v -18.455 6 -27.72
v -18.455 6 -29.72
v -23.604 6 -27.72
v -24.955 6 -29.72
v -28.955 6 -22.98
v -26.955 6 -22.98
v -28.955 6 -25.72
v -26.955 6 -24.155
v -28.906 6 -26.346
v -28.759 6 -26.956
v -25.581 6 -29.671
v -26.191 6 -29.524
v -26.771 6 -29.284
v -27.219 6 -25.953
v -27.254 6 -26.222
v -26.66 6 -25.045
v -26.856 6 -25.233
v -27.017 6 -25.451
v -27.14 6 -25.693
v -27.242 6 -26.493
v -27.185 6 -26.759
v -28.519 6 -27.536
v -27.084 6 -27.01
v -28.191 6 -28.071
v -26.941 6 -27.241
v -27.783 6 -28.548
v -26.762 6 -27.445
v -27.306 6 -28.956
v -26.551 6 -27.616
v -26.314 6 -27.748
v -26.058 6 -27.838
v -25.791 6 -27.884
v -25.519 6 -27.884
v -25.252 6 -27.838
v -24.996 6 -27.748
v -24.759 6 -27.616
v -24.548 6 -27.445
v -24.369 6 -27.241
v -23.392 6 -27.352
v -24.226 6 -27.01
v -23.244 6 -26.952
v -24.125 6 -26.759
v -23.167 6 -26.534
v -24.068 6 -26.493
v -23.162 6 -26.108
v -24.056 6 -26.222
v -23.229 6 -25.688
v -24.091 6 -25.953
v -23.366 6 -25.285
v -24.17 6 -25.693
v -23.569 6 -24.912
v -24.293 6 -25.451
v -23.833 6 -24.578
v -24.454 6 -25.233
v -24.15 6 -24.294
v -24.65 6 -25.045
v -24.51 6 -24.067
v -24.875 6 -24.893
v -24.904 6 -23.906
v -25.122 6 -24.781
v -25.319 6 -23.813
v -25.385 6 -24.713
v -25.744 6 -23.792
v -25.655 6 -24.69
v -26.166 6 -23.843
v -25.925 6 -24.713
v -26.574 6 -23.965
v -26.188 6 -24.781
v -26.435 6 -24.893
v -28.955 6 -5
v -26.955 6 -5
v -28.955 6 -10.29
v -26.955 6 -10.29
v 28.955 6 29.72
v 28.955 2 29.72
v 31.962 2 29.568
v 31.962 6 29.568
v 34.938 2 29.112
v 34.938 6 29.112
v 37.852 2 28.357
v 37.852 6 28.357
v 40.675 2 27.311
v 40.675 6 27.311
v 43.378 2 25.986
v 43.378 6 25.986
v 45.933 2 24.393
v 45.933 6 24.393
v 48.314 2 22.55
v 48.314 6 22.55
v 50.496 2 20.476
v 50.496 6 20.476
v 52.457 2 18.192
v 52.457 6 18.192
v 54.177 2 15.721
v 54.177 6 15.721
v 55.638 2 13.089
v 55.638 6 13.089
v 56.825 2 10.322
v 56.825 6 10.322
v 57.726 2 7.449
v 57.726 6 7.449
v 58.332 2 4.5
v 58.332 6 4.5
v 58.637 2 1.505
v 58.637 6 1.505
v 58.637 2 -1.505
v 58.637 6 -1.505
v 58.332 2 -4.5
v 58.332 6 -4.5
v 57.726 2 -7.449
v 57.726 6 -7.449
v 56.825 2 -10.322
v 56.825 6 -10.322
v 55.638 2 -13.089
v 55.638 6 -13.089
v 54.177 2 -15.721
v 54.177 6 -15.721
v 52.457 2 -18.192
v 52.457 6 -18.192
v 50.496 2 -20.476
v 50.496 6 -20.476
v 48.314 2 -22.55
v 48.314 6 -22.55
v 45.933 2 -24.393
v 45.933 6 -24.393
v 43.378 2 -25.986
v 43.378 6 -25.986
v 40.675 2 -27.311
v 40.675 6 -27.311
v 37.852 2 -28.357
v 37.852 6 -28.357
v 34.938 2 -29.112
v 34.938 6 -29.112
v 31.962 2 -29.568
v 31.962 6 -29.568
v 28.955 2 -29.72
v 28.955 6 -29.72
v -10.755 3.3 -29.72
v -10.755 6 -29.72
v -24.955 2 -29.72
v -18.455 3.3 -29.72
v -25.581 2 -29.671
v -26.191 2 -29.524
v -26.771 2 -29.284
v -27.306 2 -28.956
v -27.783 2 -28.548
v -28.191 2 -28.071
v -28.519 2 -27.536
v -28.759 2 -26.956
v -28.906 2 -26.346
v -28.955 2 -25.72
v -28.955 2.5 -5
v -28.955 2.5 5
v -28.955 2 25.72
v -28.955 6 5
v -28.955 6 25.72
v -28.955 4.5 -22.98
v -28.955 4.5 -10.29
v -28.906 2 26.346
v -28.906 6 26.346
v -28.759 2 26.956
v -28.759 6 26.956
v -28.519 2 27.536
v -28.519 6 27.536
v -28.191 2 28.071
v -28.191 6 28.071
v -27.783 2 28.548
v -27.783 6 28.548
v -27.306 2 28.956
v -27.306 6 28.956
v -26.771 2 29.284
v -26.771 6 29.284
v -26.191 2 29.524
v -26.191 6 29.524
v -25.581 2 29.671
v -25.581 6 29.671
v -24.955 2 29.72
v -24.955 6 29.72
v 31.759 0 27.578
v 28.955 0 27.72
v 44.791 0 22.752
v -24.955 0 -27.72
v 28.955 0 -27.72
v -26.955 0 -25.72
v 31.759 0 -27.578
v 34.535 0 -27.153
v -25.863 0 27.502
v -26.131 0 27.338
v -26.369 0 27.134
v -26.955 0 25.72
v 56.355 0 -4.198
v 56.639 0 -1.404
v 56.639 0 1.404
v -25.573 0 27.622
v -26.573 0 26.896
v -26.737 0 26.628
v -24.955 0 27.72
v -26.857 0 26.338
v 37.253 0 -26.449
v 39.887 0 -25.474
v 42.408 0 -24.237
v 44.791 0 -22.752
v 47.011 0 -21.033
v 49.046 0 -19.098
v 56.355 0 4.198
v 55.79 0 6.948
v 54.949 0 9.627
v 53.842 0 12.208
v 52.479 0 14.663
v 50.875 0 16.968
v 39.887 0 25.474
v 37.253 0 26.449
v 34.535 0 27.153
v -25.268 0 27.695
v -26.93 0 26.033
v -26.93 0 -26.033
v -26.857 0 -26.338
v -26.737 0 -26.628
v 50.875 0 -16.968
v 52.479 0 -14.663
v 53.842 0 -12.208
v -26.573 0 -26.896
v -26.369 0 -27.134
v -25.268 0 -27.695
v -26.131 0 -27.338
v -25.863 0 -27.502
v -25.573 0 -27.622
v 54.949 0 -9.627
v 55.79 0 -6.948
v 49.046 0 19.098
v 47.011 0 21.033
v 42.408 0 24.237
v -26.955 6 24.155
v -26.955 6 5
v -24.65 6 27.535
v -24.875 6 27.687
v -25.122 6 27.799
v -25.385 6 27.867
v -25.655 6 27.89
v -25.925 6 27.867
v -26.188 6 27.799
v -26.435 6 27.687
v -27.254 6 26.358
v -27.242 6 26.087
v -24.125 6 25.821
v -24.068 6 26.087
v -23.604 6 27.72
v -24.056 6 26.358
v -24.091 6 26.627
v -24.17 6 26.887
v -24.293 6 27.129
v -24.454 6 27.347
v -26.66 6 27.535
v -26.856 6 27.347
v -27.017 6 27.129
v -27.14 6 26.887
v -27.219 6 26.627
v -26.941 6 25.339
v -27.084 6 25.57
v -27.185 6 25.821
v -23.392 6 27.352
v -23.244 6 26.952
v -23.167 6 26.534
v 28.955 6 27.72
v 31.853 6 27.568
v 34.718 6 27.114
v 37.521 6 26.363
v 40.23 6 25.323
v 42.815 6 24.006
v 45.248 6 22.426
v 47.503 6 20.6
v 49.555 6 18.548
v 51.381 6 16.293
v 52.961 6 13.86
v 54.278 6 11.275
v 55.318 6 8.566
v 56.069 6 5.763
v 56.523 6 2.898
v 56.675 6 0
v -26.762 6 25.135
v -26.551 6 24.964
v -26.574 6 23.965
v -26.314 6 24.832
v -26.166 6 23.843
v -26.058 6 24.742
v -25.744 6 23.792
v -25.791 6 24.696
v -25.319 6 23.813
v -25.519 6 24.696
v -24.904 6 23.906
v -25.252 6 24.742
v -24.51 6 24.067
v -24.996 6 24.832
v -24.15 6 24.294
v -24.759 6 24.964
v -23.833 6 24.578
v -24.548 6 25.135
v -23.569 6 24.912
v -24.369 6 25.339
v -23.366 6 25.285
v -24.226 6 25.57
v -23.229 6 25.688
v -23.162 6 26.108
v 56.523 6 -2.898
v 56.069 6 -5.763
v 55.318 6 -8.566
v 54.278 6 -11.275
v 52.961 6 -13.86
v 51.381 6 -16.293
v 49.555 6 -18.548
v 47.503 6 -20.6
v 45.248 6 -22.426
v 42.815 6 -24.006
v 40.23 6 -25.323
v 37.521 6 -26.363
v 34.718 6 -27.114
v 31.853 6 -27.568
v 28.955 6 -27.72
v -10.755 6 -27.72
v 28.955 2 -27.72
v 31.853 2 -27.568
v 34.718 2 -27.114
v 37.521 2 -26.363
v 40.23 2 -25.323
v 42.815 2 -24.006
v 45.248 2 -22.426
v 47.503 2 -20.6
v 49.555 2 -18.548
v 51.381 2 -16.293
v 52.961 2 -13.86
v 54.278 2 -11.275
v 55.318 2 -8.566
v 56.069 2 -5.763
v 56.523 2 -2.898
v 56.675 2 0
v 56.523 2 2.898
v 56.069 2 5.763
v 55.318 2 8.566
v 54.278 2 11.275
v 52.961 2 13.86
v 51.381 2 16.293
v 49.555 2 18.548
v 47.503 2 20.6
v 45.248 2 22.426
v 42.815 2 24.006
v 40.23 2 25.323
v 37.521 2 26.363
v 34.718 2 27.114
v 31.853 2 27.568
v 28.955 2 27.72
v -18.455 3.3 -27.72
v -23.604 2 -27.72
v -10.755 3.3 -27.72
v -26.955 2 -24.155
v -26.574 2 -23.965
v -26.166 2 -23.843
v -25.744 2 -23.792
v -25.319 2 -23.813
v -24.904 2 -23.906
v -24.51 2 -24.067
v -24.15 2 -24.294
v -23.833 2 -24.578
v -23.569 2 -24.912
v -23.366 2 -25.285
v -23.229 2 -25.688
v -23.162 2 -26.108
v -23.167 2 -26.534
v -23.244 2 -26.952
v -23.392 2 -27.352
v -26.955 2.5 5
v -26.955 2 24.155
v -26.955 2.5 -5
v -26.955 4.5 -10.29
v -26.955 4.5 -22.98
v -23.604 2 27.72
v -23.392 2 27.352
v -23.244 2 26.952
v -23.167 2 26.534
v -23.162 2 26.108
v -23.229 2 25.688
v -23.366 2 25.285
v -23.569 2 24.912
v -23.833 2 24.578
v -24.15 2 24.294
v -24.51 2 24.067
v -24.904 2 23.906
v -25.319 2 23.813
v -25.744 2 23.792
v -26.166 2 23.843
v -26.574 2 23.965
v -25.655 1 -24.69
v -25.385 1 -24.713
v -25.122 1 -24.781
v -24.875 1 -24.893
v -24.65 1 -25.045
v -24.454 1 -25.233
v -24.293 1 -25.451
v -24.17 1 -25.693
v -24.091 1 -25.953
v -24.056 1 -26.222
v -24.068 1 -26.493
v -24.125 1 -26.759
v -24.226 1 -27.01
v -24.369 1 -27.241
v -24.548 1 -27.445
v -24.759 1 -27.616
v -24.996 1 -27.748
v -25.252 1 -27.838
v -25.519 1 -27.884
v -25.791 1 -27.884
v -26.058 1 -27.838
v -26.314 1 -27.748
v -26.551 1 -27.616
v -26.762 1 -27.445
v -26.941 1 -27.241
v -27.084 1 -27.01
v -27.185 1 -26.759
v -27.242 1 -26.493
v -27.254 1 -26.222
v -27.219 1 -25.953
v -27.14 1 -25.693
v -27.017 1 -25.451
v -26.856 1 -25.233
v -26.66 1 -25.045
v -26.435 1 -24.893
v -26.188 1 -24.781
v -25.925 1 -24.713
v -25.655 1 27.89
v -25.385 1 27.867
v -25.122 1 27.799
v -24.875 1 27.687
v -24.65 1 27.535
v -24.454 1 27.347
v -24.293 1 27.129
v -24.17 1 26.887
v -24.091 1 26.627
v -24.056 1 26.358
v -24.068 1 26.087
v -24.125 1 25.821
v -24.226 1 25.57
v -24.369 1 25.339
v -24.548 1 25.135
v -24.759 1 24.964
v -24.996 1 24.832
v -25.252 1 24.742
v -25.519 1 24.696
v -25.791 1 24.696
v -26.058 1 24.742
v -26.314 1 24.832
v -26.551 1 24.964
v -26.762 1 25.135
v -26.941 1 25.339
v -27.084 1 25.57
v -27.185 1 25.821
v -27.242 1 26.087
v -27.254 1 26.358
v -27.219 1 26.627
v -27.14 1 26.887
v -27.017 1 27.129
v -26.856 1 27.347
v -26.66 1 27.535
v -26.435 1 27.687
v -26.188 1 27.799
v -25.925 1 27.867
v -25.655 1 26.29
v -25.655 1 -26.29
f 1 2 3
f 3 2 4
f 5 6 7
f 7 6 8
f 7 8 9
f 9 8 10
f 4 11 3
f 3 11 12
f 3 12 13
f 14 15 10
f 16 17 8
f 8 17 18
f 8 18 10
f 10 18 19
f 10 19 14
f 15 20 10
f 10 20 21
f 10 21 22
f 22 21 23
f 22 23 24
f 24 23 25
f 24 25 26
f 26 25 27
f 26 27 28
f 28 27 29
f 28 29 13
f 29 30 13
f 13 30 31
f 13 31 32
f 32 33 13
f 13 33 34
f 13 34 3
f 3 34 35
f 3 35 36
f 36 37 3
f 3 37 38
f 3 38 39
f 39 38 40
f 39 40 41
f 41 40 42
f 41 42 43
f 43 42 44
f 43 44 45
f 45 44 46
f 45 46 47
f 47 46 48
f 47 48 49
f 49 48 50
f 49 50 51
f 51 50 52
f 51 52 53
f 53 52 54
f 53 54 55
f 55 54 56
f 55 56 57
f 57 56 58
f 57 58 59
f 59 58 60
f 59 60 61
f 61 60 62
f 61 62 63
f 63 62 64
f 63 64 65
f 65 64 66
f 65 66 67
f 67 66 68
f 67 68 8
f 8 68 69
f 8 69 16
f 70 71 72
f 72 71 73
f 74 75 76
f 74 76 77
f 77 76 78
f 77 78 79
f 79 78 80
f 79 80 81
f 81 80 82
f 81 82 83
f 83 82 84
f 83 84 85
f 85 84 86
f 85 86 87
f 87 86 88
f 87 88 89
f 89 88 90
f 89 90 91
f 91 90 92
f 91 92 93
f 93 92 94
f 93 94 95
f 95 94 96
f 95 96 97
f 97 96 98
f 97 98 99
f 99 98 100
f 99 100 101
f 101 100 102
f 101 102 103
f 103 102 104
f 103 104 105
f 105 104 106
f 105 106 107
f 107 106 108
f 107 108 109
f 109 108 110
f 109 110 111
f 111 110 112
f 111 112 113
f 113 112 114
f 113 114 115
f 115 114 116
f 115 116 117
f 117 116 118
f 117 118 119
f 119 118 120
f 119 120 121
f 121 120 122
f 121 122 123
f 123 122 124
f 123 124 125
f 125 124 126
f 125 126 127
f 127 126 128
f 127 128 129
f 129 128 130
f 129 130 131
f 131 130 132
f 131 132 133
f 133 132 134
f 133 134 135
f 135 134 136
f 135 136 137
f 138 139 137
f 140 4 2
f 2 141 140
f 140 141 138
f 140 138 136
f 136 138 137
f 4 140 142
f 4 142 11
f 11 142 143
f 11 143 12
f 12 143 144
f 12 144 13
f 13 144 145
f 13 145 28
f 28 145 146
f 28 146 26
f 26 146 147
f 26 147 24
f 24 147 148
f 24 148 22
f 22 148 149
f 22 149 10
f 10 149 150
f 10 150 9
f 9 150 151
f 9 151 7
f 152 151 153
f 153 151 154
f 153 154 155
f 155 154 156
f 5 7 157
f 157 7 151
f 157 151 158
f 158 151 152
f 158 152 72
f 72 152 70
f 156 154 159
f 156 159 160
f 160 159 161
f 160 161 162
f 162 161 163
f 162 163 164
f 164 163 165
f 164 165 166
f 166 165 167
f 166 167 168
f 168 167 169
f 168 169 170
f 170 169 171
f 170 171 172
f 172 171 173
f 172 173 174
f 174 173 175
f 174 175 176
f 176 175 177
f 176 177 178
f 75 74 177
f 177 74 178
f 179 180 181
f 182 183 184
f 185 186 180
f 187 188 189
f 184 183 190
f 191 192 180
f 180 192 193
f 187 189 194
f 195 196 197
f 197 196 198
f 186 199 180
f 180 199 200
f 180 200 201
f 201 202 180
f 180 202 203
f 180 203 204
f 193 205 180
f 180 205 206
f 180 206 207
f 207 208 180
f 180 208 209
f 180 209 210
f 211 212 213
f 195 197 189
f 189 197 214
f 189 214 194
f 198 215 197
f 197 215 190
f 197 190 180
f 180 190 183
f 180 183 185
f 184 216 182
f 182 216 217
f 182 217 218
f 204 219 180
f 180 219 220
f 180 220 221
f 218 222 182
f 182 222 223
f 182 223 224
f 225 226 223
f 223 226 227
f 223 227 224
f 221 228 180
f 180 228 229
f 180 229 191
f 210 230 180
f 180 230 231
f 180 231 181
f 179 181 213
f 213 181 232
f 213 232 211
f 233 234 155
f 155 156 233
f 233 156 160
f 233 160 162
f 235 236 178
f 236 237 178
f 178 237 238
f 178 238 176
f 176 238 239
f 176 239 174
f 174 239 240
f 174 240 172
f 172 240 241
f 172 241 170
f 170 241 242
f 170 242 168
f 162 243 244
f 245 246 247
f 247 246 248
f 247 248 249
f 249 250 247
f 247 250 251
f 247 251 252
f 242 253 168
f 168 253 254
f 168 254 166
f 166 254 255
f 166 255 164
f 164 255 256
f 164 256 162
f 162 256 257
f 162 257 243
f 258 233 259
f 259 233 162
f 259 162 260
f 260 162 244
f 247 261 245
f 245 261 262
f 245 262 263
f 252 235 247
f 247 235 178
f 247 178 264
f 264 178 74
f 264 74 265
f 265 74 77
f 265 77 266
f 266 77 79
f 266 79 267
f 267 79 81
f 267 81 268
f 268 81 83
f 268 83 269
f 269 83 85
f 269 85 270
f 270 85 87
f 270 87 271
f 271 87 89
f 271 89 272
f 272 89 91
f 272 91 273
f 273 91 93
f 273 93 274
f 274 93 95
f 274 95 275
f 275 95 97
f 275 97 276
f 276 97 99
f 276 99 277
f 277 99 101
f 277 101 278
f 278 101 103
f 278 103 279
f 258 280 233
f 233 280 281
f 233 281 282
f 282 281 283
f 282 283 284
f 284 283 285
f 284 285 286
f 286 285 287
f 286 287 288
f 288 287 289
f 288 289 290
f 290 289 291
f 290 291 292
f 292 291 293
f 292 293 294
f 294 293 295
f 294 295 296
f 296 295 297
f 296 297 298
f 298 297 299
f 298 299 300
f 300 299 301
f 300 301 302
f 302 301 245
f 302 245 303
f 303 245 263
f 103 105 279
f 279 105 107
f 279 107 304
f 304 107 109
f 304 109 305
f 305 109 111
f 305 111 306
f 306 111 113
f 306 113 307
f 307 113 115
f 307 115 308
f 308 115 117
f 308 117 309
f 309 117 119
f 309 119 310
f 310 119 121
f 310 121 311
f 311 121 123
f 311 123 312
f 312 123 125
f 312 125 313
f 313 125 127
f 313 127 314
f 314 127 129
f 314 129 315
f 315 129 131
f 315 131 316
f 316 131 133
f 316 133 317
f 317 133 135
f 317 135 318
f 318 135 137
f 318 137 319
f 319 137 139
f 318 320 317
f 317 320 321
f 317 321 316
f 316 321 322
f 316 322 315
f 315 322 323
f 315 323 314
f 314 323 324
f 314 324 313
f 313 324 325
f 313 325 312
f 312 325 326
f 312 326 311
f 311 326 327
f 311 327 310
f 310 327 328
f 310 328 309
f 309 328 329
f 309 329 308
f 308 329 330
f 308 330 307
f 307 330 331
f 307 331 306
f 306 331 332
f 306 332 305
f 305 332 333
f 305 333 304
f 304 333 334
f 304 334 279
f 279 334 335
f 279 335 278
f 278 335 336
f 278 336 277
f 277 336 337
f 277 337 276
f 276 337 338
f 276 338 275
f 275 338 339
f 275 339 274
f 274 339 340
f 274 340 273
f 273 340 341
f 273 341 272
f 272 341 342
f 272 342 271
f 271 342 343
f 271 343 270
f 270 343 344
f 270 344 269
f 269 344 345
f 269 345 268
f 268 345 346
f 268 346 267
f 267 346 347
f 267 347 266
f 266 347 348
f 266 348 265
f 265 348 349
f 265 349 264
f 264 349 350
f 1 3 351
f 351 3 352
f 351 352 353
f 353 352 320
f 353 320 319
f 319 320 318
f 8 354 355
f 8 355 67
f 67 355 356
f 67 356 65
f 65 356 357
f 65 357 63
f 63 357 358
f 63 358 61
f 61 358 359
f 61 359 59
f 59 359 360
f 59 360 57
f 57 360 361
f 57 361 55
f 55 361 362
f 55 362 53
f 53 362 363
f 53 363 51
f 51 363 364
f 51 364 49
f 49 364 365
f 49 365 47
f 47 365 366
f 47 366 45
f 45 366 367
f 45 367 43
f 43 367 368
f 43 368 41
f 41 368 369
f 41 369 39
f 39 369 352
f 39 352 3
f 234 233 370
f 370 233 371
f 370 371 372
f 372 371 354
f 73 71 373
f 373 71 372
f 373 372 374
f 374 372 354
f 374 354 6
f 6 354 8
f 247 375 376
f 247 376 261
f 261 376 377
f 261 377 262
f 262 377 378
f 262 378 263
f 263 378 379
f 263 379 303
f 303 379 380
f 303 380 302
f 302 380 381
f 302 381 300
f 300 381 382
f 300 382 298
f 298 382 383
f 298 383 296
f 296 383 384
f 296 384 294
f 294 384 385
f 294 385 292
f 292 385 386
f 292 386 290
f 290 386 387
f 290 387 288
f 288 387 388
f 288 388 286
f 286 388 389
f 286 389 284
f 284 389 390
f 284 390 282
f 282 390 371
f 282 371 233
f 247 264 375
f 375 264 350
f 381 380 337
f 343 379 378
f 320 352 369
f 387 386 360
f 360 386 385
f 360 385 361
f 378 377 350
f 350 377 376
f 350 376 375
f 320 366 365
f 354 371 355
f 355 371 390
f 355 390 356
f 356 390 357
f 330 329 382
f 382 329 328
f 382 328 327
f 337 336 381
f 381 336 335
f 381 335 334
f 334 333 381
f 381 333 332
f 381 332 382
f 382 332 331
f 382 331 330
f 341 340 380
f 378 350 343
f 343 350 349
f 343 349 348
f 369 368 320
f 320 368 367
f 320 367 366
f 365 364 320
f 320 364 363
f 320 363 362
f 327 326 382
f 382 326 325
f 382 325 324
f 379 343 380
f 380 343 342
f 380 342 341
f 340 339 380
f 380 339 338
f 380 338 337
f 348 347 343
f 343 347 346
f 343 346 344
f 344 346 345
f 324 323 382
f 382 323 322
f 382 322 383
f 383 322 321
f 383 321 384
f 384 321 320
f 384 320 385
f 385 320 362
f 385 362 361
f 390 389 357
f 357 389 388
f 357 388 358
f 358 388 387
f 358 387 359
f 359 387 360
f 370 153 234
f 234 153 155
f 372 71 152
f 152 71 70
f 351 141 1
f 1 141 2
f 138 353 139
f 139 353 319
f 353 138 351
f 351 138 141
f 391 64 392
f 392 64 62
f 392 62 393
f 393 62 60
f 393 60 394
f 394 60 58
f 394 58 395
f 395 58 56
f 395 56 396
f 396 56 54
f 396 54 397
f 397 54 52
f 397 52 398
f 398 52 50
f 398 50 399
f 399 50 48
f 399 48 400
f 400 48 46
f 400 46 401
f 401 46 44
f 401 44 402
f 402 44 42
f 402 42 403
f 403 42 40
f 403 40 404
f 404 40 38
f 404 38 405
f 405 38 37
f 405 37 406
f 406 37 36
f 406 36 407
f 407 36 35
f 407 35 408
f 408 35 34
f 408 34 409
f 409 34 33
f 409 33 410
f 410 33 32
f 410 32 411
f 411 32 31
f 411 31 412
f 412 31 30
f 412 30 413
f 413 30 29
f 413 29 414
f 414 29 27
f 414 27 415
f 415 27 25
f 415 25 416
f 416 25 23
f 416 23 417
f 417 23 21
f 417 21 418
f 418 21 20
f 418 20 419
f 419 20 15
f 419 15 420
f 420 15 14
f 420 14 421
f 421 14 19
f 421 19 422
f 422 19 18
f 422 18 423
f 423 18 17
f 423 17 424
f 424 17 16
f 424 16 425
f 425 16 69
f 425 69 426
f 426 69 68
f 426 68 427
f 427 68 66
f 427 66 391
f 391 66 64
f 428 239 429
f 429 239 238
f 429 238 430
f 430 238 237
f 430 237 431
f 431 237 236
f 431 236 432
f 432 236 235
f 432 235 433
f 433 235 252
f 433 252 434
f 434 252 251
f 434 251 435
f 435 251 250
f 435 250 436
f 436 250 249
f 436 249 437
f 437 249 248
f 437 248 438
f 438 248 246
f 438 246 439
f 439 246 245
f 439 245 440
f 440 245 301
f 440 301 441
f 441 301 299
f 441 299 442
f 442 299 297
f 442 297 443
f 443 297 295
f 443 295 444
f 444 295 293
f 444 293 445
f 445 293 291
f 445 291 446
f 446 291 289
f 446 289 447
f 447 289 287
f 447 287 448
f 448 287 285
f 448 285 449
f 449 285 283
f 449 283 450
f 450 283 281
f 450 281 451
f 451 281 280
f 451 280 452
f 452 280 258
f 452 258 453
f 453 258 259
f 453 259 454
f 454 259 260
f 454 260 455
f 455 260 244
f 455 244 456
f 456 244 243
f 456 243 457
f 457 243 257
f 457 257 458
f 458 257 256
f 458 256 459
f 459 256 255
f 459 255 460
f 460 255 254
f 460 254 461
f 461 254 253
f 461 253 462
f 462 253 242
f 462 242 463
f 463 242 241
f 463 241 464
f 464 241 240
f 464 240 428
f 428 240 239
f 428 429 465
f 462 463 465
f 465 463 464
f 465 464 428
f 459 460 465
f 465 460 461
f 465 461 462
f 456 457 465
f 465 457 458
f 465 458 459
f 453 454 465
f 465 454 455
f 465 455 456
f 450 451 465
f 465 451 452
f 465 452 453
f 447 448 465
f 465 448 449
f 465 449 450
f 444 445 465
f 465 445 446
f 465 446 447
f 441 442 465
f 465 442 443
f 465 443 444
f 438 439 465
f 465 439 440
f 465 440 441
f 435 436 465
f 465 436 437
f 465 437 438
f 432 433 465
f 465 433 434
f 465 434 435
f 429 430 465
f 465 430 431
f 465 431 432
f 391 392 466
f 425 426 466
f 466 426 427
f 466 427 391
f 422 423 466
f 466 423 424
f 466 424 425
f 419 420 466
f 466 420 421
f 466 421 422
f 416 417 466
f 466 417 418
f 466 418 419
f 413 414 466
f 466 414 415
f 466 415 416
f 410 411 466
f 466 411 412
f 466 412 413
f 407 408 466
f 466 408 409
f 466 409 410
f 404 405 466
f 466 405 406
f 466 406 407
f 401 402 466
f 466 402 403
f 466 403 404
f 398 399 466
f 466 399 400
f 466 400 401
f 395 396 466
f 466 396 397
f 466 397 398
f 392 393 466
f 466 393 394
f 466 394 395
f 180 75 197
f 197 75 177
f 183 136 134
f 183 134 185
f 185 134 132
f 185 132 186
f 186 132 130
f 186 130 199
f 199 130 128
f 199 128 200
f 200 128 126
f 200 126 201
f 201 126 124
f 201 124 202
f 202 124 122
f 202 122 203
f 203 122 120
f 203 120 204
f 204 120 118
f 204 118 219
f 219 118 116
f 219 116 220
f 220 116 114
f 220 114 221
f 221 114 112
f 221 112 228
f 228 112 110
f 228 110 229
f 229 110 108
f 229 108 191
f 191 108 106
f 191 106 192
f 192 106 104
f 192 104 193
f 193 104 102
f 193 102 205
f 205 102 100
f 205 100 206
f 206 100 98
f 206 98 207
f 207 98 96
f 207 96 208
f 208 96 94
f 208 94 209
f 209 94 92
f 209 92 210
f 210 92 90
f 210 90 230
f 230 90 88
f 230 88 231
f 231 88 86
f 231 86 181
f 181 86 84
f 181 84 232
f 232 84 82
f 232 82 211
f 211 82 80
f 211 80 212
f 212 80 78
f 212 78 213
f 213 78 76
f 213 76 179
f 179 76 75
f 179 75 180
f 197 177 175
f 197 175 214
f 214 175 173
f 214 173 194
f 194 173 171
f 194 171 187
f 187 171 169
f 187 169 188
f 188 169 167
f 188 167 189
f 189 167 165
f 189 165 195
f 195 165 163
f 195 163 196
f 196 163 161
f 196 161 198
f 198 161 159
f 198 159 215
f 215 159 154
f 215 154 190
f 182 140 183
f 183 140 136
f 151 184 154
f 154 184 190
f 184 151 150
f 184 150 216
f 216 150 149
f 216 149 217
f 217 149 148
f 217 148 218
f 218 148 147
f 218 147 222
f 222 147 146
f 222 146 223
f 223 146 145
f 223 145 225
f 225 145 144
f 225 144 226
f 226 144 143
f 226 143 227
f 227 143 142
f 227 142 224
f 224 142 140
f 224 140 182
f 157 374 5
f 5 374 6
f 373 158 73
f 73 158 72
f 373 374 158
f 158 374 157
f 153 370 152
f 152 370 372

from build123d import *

# Parameters (mm, degrees)
EXTRUDE_1_DEPTH     = 2
EXTRUDE_2_DEPTH     = 4
SKETCH_3_R          = 1.6
SKETCH_3_W          = 7.7
SKETCH_3_H          = 2
SKETCH_3_W_2        = 4
SKETCH_3_H_2        = 10
CUT_EXTRUDE_1_DEPTH = 2.7
SKETCH_4_R          = 1.6
CUT_EXTRUDE_2_DEPTH = 5
CHAMFER_1_SIZE      = 2
SKETCH_5_W          = 2
SKETCH_5_H          = 12.69
CUT_EXTRUDE_3_DEPTH = 1.5
SKETCH_6_W          = 2
SKETCH_6_H          = 10
CUT_EXTRUDE_4_DEPTH = 0.8


with BuildPart() as part:
    # 草图1 → 凸台-拉伸1 (new body)
    with BuildSketch(Plane(origin=(0, 0, 0), x_dir=(1, 0, 0), z_dir=(0, 1, 0))):
        with BuildLine():
            Line((-24.955, -29.72), (28.955, -29.72))
            ThreePointArc((28.955, -29.72), (58.675, 0), (28.955, 29.72))
            Line((28.955, 29.72), (-24.955, 29.72))
            ThreePointArc((-24.955, 29.72), (-27.783427125, 28.548427125), (-28.955, 25.72))
            Line((-28.955, 25.72), (-28.955, -25.72))
            ThreePointArc((-28.955, -25.72), (-27.783427125, -28.548427125), (-24.955, -29.72))
        make_face()
    extrude(amount=EXTRUDE_1_DEPTH)

    # 草图2 → 凸台-拉伸2 (add)
    with BuildSketch(Plane(origin=(0, 2, 0), x_dir=(1, 0, 0), z_dir=(0, 1, 0))):
        with BuildLine():
            Line((28.955, 29.72), (-24.955, 29.72))
            ThreePointArc((-24.955, 29.72), (-27.783427125, 28.548427125), (-28.955, 25.72))
            Line((-28.955, 25.72), (-28.955, -25.72))
            ThreePointArc((-28.955, -25.72), (-27.783427125, -28.548427125), (-24.955, -29.72))
            Line((-24.955, -29.72), (28.955, -29.72))
            ThreePointArc((28.955, -29.72), (58.675, 0), (28.955, 29.72))
        make_face()
        with BuildLine():
            Line((-26.955, 24.15458435), (-26.955, -24.15458435))
            ThreePointArc((-26.955, -24.15458435), (-23.8332124, -24.577957377), (-23.604365952, -27.72))
            Line((-23.604365952, -27.72), (28.955, -27.72))
            ThreePointArc((28.955, -27.72), (56.675, 0), (28.955, 27.72))
            Line((28.955, 27.72), (-23.604365952, 27.72))
            ThreePointArc((-23.604365952, 27.72), (-23.8332124, 24.577957377), (-26.955, 24.15458435))
        make_face(mode=Mode.SUBTRACT)
    extrude(amount=EXTRUDE_2_DEPTH)

    # 草图3 → 切除-拉伸1 (cut)
    with BuildSketch(Plane(origin=(0, 6, 0), x_dir=(1, 0, 0), z_dir=(0, 1, 0))):
        with Locations(Location((-25.655, 26.29, 0), (0, 0, 270))):
            Circle(SKETCH_3_R)
        with Locations(Location((-25.655, -26.29, 0), (0, 0, 270))):
            Circle(SKETCH_3_R)
        with Locations((-14.605, 28.72)):
            Rectangle(SKETCH_3_W, SKETCH_3_H)
        with Locations((-28.955, 0)):
            Rectangle(SKETCH_3_W_2, SKETCH_3_H_2)
    extrude(amount=-CUT_EXTRUDE_1_DEPTH, mode=Mode.SUBTRACT)

    # 草图4 → 切除-拉伸2 (cut)
    with BuildSketch(Plane(origin=(0, 6, 0), x_dir=(1, 0, 0), z_dir=(0, 1, 0))):
        with Locations(Location((-25.655, 26.29, 0), (0, 0, 270))):
            Circle(SKETCH_4_R)
        with Locations(Location((-25.655, -26.29, 0), (0, 0, 270))):
            Circle(SKETCH_4_R)
    extrude(amount=-CUT_EXTRUDE_2_DEPTH, mode=Mode.SUBTRACT)

    # 倒角1
    chamfer_1_edges = [part.edges().sort_by_distance(p)[0] for p in [
        (2, 0, 29.72),
        (-27.783427125, 0, 28.548427125),
        (-28.955, 0, 0),
        (-27.783427125, 0, -28.548427125),
        (2, 0, -29.72),
        (58.675, 0, 0),
    ]]
    chamfer(chamfer_1_edges, length=CHAMFER_1_SIZE)

    # 草图5 → 切除-拉伸3 (cut)
    with BuildSketch(Plane(origin=(0, 6, 0), x_dir=(1, 0, 0), z_dir=(0, 1, 0))):
        with Locations((-27.955, 16.635)):
            Rectangle(SKETCH_5_W, SKETCH_5_H)
    extrude(amount=-CUT_EXTRUDE_3_DEPTH, mode=Mode.SUBTRACT)

    # 草图6 → 切除-拉伸4 (cut)
    with BuildSketch(Plane(origin=(0, 3.3, 0), x_dir=(1, 0, 0), z_dir=(0, 1, 0))):
        with Locations((-27.955, 0)):
            Rectangle(SKETCH_6_W, SKETCH_6_H)
    extrude(amount=-CUT_EXTRUDE_4_DEPTH, mode=Mode.SUBTRACT)


solid = part.part
